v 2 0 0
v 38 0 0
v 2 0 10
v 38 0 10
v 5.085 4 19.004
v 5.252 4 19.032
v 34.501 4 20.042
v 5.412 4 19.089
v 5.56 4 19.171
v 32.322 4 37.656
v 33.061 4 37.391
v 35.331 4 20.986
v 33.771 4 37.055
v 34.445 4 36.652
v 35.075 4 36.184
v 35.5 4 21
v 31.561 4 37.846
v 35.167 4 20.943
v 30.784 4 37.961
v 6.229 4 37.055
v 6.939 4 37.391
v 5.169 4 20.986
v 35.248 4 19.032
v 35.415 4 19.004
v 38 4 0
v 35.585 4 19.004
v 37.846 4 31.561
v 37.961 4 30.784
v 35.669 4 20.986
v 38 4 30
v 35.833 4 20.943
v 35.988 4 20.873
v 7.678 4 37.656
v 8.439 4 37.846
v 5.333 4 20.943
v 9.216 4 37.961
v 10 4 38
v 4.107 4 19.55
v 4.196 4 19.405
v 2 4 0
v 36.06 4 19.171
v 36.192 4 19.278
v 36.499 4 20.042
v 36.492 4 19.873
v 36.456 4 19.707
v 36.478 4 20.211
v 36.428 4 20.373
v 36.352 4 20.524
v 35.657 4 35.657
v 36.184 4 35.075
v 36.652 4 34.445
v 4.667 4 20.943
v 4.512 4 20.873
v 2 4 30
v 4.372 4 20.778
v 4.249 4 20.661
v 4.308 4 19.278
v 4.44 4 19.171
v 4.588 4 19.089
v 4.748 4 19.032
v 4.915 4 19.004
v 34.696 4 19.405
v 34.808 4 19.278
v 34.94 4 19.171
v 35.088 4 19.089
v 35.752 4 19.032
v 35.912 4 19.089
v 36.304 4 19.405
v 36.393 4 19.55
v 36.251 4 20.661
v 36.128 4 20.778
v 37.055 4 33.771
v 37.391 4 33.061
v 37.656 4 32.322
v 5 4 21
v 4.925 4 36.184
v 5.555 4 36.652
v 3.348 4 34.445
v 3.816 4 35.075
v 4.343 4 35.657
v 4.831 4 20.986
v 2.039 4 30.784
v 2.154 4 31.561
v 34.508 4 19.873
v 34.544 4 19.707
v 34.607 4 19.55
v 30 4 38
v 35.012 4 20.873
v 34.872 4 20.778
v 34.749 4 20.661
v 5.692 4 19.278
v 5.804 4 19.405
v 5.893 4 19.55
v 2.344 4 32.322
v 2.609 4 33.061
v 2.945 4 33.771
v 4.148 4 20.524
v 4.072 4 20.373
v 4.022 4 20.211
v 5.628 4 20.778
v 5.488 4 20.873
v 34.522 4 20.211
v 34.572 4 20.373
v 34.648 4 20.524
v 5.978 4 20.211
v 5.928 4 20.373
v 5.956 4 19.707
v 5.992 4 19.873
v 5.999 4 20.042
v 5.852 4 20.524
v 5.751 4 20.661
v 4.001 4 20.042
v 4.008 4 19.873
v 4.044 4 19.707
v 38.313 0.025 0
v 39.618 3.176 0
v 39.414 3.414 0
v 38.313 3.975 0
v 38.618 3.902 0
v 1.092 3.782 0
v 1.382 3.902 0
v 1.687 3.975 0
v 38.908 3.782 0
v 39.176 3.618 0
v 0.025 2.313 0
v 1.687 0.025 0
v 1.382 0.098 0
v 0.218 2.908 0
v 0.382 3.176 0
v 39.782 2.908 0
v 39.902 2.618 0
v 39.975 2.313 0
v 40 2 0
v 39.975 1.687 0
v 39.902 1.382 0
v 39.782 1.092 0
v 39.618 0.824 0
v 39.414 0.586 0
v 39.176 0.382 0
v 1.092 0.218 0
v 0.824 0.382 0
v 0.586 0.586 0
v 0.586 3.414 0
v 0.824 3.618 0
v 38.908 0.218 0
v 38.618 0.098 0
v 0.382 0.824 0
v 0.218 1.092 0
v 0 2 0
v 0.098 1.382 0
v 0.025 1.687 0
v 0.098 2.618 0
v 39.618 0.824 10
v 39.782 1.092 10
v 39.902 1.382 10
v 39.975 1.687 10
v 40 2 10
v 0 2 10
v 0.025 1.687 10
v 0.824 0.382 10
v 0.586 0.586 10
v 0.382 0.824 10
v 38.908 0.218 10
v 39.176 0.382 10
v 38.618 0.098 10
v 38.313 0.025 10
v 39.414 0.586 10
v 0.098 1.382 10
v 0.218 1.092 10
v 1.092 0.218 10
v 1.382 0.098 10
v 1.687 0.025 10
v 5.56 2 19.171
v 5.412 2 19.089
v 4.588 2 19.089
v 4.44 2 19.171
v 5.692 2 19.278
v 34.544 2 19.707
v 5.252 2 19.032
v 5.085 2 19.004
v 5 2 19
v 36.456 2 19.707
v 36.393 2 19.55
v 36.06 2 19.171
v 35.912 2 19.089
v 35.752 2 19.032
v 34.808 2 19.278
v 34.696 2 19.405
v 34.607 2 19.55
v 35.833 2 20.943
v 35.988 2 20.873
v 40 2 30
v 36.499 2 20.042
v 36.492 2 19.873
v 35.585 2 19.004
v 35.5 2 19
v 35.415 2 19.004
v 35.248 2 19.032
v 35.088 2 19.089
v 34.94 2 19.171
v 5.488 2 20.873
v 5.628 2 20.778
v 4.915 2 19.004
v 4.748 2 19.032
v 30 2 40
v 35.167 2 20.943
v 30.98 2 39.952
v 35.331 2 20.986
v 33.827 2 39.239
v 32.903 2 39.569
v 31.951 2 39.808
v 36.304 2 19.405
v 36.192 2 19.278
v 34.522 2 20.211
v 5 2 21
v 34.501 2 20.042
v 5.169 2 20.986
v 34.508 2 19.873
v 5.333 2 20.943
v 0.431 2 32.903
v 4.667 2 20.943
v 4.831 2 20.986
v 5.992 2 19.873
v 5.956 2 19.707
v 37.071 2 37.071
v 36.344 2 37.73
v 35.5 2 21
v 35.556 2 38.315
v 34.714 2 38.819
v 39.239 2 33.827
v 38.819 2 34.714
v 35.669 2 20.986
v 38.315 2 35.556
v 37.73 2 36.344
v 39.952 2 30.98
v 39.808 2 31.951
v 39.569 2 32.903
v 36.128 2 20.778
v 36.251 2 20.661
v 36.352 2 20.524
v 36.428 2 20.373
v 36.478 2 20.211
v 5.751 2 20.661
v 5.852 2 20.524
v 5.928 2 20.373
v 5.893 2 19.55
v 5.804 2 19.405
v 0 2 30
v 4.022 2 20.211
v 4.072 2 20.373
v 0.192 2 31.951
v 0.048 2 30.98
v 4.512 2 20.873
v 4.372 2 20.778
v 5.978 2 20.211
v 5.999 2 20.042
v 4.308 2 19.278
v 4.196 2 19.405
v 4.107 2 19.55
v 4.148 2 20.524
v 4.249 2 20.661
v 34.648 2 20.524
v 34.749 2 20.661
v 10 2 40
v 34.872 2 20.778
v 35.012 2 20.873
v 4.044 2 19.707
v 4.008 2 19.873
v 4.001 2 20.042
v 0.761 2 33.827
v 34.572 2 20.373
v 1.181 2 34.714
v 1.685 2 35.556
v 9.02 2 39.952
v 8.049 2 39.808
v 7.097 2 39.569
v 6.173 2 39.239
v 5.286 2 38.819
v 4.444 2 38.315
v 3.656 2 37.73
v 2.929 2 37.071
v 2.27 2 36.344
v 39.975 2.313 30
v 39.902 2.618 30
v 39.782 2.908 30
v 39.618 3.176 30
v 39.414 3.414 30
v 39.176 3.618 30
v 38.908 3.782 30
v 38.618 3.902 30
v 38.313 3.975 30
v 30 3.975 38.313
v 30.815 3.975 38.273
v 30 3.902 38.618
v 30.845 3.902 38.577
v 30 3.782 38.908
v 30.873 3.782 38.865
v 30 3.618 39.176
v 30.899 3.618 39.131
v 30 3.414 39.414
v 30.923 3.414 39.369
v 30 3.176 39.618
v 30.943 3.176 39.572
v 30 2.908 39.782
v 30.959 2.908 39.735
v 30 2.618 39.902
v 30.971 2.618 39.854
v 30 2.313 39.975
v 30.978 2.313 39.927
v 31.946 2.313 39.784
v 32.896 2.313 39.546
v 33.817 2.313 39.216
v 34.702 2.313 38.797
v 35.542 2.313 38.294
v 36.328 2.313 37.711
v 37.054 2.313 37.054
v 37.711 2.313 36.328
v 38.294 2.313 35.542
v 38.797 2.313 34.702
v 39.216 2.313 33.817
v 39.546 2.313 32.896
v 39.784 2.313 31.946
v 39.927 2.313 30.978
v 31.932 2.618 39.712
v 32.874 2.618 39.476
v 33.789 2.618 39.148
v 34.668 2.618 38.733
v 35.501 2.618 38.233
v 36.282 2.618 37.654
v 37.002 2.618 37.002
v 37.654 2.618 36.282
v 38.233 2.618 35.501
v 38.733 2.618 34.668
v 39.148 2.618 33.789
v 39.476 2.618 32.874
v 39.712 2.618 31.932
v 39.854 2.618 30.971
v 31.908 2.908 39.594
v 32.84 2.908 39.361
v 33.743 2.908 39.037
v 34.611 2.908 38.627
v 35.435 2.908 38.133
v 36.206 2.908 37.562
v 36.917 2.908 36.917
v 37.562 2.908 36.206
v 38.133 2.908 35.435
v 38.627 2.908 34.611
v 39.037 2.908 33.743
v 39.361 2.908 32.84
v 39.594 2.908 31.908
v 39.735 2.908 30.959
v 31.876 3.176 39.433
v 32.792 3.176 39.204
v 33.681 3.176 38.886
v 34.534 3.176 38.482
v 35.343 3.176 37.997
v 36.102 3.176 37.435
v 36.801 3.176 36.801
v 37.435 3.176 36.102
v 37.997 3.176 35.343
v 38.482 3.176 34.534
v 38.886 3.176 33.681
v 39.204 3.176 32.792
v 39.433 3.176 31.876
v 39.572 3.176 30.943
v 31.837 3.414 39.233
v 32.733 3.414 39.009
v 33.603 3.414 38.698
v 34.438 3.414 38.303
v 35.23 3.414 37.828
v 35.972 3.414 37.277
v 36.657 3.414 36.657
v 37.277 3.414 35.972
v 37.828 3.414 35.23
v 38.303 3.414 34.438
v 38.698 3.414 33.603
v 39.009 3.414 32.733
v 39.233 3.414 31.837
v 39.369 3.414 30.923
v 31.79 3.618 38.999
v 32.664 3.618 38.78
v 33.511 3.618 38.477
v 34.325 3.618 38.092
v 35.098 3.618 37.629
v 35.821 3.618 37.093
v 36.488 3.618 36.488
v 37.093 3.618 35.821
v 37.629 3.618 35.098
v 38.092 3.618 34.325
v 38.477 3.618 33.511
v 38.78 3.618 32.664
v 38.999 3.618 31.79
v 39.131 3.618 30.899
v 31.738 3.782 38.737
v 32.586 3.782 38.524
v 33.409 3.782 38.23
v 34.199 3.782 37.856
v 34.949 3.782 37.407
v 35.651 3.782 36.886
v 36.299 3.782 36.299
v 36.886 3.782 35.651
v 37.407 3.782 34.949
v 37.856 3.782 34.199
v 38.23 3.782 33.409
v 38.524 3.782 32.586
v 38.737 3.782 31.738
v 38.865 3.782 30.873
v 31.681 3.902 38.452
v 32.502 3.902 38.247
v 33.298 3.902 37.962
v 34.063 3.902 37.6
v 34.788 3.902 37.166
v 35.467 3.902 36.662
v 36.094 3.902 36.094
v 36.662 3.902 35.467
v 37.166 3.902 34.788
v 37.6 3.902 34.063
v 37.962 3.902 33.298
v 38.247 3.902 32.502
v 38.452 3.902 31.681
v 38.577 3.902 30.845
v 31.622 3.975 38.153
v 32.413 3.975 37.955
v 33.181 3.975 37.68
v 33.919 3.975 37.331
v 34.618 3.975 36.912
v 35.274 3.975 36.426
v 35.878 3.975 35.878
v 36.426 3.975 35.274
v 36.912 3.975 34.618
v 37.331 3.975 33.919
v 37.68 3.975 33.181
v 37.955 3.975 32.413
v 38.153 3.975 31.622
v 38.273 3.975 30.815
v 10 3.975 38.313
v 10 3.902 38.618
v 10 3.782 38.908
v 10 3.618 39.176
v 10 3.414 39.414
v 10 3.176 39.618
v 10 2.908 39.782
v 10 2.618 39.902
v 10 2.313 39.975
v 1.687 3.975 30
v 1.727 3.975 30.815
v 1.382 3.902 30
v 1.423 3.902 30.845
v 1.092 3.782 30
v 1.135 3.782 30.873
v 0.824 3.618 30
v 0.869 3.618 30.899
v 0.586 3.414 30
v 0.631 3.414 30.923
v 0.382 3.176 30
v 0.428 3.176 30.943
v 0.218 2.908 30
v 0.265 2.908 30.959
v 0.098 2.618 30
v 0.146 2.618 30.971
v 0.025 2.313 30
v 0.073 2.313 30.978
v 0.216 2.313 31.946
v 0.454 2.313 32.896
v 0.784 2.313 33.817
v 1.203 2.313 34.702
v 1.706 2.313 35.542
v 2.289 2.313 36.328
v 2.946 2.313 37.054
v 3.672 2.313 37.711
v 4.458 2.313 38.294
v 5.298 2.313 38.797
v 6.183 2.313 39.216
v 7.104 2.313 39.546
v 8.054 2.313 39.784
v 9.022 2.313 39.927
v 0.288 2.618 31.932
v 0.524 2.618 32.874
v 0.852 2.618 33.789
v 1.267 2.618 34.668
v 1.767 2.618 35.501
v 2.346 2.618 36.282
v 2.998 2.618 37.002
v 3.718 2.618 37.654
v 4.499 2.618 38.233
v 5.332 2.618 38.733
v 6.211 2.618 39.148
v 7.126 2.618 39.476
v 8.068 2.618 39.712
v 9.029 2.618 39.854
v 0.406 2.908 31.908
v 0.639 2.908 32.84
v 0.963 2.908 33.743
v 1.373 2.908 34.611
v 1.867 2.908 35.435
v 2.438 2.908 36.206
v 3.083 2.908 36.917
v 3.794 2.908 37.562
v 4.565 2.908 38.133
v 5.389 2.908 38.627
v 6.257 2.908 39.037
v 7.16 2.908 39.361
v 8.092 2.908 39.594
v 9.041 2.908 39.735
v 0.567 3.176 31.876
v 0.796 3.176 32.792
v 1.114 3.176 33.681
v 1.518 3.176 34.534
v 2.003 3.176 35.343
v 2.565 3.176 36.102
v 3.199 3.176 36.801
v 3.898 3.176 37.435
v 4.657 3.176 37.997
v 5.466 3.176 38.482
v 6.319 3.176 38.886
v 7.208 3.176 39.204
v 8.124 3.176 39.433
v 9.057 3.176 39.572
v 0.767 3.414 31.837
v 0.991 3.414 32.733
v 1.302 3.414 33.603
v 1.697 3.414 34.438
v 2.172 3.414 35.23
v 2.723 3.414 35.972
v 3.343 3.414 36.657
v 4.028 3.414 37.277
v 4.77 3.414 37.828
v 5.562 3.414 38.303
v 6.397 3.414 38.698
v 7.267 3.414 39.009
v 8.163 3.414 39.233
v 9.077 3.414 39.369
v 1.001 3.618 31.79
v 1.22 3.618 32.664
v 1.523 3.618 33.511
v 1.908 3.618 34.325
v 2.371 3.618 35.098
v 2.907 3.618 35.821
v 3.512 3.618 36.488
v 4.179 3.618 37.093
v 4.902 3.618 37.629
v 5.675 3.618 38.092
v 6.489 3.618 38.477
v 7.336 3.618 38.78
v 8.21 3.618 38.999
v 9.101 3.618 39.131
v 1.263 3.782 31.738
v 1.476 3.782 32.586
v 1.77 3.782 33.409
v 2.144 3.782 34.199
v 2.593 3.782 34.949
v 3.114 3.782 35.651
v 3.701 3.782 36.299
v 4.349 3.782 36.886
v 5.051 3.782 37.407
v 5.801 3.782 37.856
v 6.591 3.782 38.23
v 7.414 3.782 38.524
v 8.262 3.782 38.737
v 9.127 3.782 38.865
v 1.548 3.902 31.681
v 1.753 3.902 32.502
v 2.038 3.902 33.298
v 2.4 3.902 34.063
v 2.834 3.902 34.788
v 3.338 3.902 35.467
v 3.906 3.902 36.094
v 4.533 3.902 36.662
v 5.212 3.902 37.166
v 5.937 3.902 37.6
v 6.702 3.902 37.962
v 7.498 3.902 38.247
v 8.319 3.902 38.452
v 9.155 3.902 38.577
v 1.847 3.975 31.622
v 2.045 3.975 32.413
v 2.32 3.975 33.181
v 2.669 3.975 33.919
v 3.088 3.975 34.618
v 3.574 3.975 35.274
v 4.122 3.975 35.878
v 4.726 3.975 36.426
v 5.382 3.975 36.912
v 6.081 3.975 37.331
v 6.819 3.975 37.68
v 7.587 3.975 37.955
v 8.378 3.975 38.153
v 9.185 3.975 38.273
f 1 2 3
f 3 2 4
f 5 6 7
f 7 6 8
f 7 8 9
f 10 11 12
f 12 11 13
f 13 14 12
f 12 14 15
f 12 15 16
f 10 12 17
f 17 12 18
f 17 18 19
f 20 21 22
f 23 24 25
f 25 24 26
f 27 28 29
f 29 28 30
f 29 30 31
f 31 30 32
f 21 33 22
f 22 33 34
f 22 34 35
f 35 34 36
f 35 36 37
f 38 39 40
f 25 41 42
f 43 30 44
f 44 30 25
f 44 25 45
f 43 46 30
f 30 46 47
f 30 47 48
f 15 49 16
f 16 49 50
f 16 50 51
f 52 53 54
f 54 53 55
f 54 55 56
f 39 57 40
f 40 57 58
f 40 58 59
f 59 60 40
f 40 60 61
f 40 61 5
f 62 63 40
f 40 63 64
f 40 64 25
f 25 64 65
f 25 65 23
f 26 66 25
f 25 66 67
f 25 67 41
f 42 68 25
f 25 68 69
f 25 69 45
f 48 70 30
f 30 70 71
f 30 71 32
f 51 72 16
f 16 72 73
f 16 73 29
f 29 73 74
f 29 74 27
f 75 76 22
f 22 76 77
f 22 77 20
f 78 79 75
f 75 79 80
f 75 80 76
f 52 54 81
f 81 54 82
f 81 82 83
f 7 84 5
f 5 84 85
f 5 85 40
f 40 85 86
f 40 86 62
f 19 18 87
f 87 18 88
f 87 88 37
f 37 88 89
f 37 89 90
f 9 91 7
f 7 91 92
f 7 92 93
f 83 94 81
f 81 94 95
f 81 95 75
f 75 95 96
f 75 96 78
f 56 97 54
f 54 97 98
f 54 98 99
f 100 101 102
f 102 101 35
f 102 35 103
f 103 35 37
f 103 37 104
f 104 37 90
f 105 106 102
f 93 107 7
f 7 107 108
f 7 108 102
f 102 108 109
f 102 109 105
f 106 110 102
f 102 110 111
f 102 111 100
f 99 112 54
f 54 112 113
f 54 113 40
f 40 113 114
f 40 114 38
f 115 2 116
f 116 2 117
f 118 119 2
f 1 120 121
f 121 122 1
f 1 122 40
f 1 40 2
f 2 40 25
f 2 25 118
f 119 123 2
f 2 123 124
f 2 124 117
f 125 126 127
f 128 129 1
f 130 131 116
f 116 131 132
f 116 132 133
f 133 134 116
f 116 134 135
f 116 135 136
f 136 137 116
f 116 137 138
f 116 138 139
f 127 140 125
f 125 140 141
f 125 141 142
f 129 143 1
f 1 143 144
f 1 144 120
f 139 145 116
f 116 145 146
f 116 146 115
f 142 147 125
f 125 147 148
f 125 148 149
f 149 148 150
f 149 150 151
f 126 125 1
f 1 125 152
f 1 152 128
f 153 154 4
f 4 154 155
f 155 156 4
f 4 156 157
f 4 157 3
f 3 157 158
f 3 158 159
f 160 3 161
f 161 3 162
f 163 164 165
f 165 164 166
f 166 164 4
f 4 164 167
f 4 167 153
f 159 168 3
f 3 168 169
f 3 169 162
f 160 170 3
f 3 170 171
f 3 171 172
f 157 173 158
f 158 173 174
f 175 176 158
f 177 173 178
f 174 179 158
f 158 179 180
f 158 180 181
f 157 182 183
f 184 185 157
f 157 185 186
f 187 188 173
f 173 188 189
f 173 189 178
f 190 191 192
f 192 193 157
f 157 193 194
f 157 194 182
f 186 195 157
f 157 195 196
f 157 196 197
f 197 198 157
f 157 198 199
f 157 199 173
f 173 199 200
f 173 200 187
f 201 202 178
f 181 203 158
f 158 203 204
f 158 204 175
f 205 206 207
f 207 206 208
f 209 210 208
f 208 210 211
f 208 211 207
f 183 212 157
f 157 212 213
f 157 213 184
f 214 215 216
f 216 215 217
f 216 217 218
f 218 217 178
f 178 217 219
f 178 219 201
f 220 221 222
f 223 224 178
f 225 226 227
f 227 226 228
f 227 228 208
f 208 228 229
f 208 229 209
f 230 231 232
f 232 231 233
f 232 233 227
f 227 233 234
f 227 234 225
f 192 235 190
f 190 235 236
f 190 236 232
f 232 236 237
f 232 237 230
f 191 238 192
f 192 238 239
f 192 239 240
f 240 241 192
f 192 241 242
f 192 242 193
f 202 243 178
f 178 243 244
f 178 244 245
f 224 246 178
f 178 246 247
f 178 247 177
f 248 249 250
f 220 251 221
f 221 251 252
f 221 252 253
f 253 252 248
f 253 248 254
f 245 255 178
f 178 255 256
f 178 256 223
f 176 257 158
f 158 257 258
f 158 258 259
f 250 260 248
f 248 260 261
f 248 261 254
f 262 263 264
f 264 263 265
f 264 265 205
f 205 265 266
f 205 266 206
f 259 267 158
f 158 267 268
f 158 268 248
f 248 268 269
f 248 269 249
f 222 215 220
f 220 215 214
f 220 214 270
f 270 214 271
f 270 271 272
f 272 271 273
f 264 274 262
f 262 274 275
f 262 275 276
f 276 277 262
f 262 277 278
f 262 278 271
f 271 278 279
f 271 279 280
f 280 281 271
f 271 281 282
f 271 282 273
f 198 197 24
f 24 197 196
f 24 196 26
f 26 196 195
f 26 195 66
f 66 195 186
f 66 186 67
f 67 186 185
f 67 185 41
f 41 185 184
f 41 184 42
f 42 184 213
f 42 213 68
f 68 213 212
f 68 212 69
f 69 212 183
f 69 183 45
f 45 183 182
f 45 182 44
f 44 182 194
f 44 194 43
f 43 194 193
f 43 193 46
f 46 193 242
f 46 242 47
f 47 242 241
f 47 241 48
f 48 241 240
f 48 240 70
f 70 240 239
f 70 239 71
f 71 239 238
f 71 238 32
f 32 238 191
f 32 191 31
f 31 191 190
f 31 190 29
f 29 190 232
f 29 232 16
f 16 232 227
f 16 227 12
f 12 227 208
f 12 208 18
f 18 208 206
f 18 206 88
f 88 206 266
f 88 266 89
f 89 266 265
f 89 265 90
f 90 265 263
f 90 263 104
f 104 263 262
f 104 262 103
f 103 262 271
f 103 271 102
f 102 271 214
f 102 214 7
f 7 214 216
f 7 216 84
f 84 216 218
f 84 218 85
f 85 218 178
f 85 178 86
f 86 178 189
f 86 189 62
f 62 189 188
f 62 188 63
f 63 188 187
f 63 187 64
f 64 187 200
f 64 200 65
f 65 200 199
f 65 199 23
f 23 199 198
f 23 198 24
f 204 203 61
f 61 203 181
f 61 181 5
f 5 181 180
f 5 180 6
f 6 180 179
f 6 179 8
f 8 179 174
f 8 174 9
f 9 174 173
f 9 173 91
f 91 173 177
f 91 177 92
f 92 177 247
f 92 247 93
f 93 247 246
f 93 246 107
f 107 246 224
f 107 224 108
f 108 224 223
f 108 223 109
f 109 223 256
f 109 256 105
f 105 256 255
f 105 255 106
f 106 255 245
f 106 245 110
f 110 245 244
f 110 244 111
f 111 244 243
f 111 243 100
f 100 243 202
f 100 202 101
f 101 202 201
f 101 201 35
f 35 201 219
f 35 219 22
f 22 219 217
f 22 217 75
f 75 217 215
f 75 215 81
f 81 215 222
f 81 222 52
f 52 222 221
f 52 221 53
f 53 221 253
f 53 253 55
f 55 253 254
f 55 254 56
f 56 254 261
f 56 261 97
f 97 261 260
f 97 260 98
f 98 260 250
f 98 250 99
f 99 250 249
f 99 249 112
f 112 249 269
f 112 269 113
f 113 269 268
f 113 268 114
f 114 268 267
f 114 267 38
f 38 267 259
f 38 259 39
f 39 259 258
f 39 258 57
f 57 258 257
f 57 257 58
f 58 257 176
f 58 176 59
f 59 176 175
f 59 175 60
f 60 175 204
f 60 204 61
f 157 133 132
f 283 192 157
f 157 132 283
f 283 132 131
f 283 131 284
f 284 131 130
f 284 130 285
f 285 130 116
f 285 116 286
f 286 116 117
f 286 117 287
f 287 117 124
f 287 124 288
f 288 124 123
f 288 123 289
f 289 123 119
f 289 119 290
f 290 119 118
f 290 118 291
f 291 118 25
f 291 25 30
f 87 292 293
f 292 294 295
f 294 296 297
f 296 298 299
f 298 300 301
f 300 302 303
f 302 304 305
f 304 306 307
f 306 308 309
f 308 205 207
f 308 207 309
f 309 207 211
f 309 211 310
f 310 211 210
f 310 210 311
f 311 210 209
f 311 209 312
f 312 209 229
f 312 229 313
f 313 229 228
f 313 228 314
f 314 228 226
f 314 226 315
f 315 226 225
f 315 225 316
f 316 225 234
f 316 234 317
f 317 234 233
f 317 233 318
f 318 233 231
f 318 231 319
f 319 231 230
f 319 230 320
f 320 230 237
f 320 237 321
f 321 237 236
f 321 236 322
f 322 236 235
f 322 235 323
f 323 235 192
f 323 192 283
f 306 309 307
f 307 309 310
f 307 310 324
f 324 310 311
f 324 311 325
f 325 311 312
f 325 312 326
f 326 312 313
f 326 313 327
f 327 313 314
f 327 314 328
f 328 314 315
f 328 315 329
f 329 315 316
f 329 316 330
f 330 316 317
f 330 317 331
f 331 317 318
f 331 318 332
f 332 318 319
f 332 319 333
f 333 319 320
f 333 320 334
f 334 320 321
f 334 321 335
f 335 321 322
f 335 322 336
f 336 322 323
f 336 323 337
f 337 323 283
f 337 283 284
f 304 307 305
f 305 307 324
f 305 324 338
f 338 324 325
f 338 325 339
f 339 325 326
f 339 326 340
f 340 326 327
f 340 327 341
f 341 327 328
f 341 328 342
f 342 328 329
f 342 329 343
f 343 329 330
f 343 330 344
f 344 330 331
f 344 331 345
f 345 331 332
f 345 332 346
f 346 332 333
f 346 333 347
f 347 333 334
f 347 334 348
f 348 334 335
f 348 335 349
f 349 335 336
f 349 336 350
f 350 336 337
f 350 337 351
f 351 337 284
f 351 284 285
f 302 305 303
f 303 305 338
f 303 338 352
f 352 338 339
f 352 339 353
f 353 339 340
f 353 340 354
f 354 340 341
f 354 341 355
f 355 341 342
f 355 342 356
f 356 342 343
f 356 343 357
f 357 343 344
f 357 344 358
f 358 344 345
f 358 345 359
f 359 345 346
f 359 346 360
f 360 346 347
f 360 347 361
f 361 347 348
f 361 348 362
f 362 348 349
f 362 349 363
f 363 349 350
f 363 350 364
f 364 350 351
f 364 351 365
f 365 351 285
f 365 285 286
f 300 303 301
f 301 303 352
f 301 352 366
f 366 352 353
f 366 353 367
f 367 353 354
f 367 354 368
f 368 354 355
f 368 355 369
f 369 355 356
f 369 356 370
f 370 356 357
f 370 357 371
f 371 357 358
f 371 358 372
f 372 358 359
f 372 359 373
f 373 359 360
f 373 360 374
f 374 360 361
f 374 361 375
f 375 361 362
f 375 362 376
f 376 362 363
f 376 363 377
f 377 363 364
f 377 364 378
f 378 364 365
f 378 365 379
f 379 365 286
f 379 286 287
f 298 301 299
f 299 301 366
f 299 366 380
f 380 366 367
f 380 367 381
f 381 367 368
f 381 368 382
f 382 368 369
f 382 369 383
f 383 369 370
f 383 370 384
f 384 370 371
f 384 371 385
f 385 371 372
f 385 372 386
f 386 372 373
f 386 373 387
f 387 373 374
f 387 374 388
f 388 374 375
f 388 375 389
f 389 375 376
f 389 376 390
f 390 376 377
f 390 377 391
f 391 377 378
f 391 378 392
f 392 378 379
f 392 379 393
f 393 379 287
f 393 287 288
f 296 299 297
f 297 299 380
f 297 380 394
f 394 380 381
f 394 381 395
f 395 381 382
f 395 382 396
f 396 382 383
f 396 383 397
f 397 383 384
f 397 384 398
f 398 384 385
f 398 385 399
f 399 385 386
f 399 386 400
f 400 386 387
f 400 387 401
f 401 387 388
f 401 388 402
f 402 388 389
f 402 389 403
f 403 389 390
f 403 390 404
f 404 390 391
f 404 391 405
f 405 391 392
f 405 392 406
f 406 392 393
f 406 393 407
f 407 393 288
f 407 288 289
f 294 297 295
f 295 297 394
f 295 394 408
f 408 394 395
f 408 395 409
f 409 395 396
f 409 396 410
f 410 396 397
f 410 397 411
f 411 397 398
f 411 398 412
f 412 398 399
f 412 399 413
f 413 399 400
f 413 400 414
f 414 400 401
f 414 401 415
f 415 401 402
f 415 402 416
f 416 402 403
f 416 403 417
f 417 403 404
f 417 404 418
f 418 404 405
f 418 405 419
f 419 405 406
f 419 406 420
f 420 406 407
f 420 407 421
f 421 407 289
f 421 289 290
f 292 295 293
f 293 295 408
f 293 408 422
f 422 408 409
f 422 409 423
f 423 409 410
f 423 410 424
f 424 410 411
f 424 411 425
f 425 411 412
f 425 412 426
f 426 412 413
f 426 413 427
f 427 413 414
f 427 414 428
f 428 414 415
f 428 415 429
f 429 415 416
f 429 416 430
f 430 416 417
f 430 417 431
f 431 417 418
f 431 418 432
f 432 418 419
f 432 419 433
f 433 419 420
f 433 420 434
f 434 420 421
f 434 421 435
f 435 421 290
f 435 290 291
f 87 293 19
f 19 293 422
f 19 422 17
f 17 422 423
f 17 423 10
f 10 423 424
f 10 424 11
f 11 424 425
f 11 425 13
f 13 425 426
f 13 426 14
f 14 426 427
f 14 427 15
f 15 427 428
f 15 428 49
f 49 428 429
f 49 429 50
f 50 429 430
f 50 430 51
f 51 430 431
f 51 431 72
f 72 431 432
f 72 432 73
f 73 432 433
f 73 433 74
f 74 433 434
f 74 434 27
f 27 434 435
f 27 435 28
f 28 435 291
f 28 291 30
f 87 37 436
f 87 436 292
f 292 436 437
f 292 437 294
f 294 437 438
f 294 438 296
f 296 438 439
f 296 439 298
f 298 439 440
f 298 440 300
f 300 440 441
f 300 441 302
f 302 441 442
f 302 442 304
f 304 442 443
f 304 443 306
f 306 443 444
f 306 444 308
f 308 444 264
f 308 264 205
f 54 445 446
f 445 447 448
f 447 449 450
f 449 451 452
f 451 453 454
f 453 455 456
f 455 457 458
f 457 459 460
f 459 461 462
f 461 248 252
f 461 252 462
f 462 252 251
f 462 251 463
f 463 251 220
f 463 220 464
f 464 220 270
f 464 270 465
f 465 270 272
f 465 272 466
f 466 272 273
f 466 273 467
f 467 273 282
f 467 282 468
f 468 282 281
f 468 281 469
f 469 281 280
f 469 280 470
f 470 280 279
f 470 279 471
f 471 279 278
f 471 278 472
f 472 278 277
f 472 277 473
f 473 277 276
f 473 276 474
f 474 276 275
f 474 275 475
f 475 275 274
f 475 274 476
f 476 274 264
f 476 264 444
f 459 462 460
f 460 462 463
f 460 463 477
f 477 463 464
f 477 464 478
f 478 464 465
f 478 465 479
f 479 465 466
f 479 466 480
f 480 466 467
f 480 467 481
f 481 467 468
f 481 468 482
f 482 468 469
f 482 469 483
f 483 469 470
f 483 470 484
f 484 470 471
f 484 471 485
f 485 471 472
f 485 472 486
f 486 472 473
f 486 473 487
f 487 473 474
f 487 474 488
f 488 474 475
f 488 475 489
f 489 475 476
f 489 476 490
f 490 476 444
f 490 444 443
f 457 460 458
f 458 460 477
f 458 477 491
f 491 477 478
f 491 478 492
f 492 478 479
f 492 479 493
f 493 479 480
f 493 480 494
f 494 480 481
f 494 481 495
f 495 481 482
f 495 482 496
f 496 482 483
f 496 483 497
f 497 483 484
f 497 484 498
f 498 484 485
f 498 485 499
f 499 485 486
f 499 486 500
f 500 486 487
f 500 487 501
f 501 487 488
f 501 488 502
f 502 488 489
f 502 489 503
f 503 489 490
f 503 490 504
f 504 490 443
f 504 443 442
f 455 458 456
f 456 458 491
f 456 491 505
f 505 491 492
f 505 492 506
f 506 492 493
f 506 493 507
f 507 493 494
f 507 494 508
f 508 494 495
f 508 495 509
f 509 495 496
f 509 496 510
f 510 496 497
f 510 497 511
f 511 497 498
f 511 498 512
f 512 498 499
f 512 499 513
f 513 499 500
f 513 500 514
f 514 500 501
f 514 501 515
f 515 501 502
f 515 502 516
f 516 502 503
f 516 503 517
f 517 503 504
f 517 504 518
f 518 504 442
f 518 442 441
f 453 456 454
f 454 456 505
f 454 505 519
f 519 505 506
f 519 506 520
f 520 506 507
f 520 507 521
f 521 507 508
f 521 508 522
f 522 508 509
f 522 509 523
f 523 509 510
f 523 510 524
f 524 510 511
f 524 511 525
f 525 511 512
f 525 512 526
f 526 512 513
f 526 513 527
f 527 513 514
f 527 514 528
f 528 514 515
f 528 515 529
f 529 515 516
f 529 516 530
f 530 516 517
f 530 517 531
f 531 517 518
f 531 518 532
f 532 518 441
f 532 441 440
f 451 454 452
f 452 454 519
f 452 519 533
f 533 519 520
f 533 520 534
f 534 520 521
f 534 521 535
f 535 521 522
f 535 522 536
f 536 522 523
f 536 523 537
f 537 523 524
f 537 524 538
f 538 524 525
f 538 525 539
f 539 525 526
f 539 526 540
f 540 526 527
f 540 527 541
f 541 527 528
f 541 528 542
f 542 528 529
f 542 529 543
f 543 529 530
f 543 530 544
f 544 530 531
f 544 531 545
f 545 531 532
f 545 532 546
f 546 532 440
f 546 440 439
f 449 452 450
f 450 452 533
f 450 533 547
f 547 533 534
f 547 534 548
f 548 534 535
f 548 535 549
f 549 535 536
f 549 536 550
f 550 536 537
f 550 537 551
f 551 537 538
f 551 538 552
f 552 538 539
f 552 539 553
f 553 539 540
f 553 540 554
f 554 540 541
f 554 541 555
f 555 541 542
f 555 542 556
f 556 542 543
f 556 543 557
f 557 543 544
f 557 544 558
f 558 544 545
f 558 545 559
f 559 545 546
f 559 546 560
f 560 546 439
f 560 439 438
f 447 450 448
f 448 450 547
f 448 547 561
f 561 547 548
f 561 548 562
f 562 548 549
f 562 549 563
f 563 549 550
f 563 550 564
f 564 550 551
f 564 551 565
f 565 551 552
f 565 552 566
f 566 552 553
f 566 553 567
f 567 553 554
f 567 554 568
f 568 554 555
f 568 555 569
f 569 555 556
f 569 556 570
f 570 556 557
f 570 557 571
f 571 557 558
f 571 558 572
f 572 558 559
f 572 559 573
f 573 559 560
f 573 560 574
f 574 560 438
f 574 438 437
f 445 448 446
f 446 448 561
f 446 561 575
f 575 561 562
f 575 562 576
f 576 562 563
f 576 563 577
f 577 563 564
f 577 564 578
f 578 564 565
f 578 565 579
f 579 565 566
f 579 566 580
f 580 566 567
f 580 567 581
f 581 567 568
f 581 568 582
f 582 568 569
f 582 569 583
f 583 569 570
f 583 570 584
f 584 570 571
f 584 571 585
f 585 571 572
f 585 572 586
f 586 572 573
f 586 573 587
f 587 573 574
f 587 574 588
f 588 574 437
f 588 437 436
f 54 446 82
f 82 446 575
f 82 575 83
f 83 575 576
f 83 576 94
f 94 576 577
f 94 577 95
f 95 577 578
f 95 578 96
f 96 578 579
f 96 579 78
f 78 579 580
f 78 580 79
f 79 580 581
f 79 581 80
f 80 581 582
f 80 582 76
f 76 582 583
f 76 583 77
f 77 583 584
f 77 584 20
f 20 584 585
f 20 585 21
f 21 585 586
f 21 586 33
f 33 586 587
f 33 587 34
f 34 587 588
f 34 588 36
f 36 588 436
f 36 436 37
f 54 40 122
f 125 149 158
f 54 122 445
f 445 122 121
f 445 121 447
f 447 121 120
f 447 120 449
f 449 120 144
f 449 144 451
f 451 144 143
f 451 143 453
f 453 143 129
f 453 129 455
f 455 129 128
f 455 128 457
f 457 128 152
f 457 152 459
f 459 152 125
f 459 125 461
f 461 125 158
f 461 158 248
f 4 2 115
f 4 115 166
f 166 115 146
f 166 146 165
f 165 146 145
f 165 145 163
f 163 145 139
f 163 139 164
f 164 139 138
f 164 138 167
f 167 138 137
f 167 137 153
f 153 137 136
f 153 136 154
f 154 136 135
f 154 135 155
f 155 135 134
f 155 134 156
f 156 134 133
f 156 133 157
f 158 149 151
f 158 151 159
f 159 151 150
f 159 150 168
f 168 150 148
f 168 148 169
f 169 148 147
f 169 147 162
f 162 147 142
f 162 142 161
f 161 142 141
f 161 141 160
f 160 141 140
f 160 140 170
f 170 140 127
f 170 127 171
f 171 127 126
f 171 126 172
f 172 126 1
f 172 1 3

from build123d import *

# Parameters (mm, degrees)
SKETCH_1_W          = 40
SKETCH_1_H          = 4
EXTRUDE_1_DEPTH     = 40
SKETCH_3_W          = 40
SKETCH_3_H          = 30
CUT_EXTRUDE_1_DEPTH = 2
SKETCH_4_R          = 1
CUT_EXTRUDE_2_DEPTH = 4
SKETCH_6_R          = 1
CUT_EXTRUDE_3_DEPTH = 4
FILLET_4_R          = 10
FILLET_5_R          = 10
FILLET_6_R          = 2
FILLET_7_R          = 2
FILLET_8_R          = 2


with BuildPart() as part:
    # ｽｹｯﾁ1 → ﾎﾞｽ - 押し出し1 (new body)
    with BuildSketch(Plane.XY):
        with Locations((20, 2)):
            Rectangle(SKETCH_1_W, SKETCH_1_H)
    extrude(amount=EXTRUDE_1_DEPTH)

    # ｽｹｯﾁ3 → ｶｯﾄ - 押し出し1 (cut)
    with BuildSketch(Plane.XZ):
        with Locations((20, 25)):
            Rectangle(SKETCH_3_W, SKETCH_3_H)
    extrude(amount=-CUT_EXTRUDE_1_DEPTH, mode=Mode.SUBTRACT)

    # ｽｹｯﾁ4 → ｶｯﾄ - 押し出し2 (cut)
    with BuildSketch(Plane(origin=(0, 4, 0), x_dir=(1, 0, 0), z_dir=(0, 1, 0))):
        with Locations(Location((35.5, -20, 0), (0, 0, 270))):
            Circle(SKETCH_4_R)
    extrude(amount=-CUT_EXTRUDE_2_DEPTH, mode=Mode.SUBTRACT)

    # ｽｹｯﾁ6 → ｶｯﾄ - 押し出し3 (cut)
    with BuildSketch(Plane(origin=(0, 4, 0), x_dir=(1, 0, 0), z_dir=(0, 1, 0))):
        with Locations(Location((5, -20, 0), (0, 0, 270))):
            Circle(SKETCH_6_R)
    extrude(amount=-CUT_EXTRUDE_3_DEPTH, mode=Mode.SUBTRACT)

    # ﾌｨﾚｯﾄ4
    fillet_4_edges = [part.edges().sort_by_distance(p)[0] for p in [
        (40, 3, 40),
    ]]
    fillet(fillet_4_edges, radius=FILLET_4_R)

    # ﾌｨﾚｯﾄ5
    fillet_5_edges = [part.edges().sort_by_distance(p)[0] for p in [
        (0, 3, 40),
    ]]
    fillet(fillet_5_edges, radius=FILLET_5_R)

    # ﾌｨﾚｯﾄ6
    fillet_6_edges = [part.edges().sort_by_distance(p)[0] for p in [
        (0, 4, 15),
        (2.928932188, 4, 37.071067812),
        (20, 4, 40),
        (37.071067812, 4, 37.071067812),
        (40, 4, 15),
    ]]
    fillet(fillet_6_edges, radius=FILLET_6_R - 0.0001)  # a hair under: the kernel refuses the full size

    # ﾌｨﾚｯﾄ7
    fillet_7_edges = [part.edges().sort_by_distance(p)[0] for p in [
        (40, 0, 5),
    ]]
    fillet(fillet_7_edges, radius=FILLET_7_R)

    # ﾌｨﾚｯﾄ8
    fillet_8_edges = [part.edges().sort_by_distance(p)[0] for p in [
        (0, 0, 5),
    ]]
    fillet(fillet_8_edges, radius=FILLET_8_R)


solid = part.part
